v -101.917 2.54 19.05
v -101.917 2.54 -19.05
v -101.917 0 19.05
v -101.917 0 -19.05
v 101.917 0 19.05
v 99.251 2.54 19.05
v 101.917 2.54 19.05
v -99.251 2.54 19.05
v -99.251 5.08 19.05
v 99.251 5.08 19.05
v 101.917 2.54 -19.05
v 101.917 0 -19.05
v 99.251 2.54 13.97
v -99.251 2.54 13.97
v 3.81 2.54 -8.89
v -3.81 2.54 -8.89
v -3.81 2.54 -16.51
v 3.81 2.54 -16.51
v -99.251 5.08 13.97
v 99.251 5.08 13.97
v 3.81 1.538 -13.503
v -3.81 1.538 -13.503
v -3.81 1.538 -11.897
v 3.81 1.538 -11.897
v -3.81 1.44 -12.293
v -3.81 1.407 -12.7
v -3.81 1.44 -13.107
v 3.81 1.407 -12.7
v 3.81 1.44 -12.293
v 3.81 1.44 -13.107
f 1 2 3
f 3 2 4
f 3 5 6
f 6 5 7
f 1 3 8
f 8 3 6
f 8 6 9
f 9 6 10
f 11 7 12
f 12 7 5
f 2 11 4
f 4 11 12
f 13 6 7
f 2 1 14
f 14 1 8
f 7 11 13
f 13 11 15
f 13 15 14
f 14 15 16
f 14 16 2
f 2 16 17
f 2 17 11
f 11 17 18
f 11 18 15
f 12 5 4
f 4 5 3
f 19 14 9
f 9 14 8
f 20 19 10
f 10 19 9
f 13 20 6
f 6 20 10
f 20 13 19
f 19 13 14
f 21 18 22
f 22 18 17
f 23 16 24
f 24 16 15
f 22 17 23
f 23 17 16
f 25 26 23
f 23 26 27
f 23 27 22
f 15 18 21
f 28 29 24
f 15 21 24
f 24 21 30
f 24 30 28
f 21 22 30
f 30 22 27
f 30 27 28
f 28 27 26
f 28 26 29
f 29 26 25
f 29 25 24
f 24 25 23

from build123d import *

# Parameters (mm, degrees)
SKETCH1_W               = 203.835
SKETCH1_H               = 38.1
BOSS_EXTRUDE1_DEPTH     = 2.54
SKETCH2_W               = 198.501
SKETCH2_H               = 2.54
BOSS_EXTRUDE2_DEPTH     = 5.08
CUT_EXTRUDE1_DEPTH      = 3.81
CUT_EXTRUDE1_DEPTH_BACK = 3.81
FILLET2_R               = 2.54


with BuildPart() as part:
    # Sketch1 → Boss-Extrude1 (new body)
    with BuildSketch(Plane(origin=(0, 0, 0), x_dir=(1, 0, 0), z_dir=(0, 1, 0))):
        Rectangle(SKETCH1_W, SKETCH1_H)
    extrude(amount=BOSS_EXTRUDE1_DEPTH)

    # Sketch2 → Boss-Extrude2 (add)
    with BuildSketch(Plane.XY.offset(19.05)):
        with Locations((0, 3.81)):
            Rectangle(SKETCH2_W, SKETCH2_H)
    extrude(amount=-BOSS_EXTRUDE2_DEPTH)

    # Sketch5 → Cut-Extrude1 (cut, two sides)
    with BuildSketch(Plane(origin=(0, 0, 0), x_dir=(0, 0, -1), z_dir=(1, 0, 0))) as cut_extrude1_sk:
        Polygon((16.51, 2.54), (12.7, 1.27), (8.89, 2.54), align=None)
    extrude(amount=CUT_EXTRUDE1_DEPTH, mode=Mode.SUBTRACT)
    extrude(cut_extrude1_sk.sketch, amount=-CUT_EXTRUDE1_DEPTH_BACK, mode=Mode.SUBTRACT)

    # Fillet2
    fillet2_edges = [part.edges().sort_by_distance(p)[0] for p in [
        (0, 1.27, -12.7),
    ]]
    fillet(fillet2_edges, radius=FILLET2_R)


solid = part.part
